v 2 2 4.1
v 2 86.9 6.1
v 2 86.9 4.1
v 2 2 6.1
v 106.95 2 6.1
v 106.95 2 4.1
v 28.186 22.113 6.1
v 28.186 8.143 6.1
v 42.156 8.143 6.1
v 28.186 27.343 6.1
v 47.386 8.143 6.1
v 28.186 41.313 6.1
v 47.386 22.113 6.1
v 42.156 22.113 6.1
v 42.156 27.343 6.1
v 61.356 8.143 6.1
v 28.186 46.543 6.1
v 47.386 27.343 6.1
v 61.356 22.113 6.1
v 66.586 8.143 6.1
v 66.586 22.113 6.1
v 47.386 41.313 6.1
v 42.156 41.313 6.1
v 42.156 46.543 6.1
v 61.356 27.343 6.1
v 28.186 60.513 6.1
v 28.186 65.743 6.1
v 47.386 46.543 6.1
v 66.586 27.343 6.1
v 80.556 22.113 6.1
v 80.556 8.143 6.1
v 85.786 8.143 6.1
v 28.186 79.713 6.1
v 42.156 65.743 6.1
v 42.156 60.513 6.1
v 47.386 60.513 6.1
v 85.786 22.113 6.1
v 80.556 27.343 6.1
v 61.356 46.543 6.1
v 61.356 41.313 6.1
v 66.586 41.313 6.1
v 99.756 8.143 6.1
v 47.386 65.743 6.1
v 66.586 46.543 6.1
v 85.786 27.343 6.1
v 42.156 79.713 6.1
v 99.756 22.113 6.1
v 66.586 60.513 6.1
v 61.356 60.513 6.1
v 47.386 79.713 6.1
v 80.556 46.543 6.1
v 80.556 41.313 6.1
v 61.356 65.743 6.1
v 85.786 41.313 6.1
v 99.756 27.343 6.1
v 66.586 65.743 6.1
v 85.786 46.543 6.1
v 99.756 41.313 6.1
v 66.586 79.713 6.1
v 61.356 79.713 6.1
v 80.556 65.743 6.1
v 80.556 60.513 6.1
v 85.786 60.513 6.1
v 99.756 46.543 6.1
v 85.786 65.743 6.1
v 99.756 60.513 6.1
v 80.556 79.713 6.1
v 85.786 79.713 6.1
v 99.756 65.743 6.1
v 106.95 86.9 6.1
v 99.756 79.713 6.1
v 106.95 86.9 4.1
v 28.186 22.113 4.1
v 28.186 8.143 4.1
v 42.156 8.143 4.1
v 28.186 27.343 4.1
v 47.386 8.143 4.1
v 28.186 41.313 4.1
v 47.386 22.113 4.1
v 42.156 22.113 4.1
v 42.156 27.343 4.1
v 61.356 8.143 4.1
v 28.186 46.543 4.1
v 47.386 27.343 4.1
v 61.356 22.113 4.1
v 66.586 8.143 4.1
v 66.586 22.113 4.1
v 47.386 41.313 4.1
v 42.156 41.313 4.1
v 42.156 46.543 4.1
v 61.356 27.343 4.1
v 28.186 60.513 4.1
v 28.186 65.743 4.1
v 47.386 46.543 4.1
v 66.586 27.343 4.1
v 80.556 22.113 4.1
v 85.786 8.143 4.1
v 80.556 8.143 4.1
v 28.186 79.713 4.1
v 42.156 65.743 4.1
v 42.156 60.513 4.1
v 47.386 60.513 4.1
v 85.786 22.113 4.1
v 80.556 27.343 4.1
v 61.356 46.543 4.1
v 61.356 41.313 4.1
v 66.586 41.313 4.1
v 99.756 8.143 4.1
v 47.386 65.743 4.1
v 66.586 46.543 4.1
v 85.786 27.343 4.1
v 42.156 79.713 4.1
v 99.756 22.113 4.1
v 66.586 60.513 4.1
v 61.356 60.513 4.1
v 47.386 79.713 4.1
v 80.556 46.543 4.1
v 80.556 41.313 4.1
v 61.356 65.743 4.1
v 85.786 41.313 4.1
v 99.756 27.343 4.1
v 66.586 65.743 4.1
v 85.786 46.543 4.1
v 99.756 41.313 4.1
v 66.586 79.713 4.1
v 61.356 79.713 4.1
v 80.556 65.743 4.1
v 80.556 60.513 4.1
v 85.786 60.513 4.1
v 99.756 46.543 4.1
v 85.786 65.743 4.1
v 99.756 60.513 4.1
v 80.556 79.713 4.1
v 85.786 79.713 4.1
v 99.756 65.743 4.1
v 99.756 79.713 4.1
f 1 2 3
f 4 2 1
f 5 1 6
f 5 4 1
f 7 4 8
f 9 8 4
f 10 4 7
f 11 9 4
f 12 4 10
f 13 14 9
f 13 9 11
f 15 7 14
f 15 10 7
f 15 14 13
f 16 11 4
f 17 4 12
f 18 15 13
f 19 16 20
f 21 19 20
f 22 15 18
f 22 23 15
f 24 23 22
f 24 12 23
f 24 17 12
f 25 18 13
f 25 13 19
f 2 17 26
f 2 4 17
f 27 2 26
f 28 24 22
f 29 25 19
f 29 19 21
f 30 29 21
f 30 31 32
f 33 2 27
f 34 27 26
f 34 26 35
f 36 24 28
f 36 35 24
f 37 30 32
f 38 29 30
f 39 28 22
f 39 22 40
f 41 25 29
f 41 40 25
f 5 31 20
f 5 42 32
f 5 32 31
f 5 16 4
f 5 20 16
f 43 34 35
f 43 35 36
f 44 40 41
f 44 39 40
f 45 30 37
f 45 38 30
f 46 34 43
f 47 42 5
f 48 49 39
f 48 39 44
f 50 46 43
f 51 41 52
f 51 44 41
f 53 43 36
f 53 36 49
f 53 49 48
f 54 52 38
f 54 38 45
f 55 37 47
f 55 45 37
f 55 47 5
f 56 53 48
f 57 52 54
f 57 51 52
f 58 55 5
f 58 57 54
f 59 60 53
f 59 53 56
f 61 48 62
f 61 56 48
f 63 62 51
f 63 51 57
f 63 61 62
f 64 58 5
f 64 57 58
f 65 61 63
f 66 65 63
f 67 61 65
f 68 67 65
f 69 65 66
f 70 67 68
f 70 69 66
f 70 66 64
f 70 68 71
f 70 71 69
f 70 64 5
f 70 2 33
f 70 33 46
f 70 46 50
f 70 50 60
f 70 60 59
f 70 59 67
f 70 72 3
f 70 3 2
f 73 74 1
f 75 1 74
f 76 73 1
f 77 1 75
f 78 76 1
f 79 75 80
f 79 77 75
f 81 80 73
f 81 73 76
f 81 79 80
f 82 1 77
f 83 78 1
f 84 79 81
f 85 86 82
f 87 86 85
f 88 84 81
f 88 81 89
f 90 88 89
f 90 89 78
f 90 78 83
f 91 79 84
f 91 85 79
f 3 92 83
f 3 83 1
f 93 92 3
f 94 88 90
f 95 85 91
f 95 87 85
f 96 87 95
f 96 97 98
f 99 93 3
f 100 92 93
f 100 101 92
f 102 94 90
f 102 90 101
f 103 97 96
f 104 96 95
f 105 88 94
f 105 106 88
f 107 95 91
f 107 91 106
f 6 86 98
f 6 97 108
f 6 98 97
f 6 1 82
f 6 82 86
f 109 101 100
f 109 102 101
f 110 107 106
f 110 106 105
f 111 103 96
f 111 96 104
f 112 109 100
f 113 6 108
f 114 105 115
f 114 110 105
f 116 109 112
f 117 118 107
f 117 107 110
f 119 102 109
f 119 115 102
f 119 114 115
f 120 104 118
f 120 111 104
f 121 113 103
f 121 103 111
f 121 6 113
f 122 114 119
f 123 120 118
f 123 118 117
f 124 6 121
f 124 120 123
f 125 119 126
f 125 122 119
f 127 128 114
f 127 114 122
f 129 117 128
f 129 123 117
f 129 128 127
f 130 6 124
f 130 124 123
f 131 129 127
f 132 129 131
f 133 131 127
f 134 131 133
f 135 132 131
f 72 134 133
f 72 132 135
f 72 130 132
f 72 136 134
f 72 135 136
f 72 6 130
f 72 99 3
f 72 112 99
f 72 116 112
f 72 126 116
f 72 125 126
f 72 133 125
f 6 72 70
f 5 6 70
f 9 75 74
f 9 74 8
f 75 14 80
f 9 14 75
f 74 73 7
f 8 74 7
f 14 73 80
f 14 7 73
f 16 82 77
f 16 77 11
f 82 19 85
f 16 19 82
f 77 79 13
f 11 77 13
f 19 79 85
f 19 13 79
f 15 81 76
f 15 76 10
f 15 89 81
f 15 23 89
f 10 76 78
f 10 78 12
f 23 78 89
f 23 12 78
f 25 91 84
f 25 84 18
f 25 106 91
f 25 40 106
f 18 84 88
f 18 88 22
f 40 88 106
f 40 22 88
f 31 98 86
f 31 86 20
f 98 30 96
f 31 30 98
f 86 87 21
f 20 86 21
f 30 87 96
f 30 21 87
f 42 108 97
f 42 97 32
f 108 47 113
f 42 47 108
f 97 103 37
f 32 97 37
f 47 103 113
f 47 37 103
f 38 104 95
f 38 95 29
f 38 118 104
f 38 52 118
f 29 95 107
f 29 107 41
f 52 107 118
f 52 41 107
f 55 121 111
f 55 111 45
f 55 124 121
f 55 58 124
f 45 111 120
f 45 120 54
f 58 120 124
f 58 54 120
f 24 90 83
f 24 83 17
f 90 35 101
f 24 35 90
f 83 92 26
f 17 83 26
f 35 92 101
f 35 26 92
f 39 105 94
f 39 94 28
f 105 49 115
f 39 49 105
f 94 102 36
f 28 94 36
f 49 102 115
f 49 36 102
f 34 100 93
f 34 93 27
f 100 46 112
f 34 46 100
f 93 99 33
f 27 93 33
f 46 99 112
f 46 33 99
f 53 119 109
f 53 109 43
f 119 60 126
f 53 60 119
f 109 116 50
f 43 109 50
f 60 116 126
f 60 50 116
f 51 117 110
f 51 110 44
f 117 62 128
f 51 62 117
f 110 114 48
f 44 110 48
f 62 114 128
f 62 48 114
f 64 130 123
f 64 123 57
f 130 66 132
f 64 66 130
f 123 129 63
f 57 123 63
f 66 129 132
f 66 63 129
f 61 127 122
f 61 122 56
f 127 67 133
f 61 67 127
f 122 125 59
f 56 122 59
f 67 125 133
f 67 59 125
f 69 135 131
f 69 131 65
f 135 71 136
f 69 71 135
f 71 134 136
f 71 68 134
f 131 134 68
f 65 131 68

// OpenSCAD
// file: params.scad
// ============================================
// AUTO-GENERATED — do not edit by hand
// Generated by parse_kicad.py
// ============================================

// ----- Board dimensions -----
pcb_len      = 103.95;
pcb_wid      = 83.9;
pcb_thick    = 1.6;

// ----- Case design parameters -----
wall_thick   = 2.0;
bottom_thick = 2.0;
clear_above_pcb = 5.0;
pcb_clearance = 1.0;
pcb_floor_gap = 0.5;

// ----- Plate parameters -----
plate_thick  = 2.0;
gap_above_pcb = 0.5;

// ----- Ledge parameters -----
ledge_height = 2.0;
ledge_thick  = 2.5;

// ----- Key switch parameters -----
key_size     = 13.97;
key_pitch_x  = 19.2;
key_pitch_y  = 19.2;
grid_cols    = 4;
grid_rows    = 4;

// Switch center positions (board-relative, mm)
switch_positions = [
    [33.171, 13.1278],
    [52.371, 13.1278],
    [71.571, 13.1278],
    [90.771, 13.1278],
    [33.171, 32.3278],
    [52.371, 32.3278],
    [71.571, 32.3278],
    [90.771, 32.3278],
    [33.171, 51.5278],
    [52.371, 51.5278],
    [71.571, 51.5278],
    [90.771, 51.5278],
    [33.171, 70.7278],
    [52.371, 70.7278],
    [71.571, 70.7278],
    [90.771, 70.7278],
];

// ----- USB connector -----
usb_x        = 12.97;
usb_y        = 3.46;
usb_edge     = "top";
usb_width    = 9.0;
usb_height   = 4.0;
usb_bottom_clear = 0.8;

// ----- MCU -----
mcu_x        = 12.97;
mcu_y        = 15.46;
mcu_width    = 21.3;
mcu_height   = 26.0;
// MCU bounding box (board-relative): [2.57, 2.71] to [23.87, 28.71]
mcu_bbox_x0  = 2.57;
mcu_bbox_y0  = 2.71;
mcu_bbox_x1  = 23.87;
mcu_bbox_y1  = 28.71;
// main file
// ============================================
// Positioning plate — auto-generated
// ============================================
include <params.scad>

// ----- Derived -----
pcb_len_clearance = pcb_len + pcb_clearance;
pcb_wid_clearance = pcb_wid + pcb_clearance;

offset_x = wall_thick;
offset_y = wall_thick;

// PCB top Z in the case
pcb_top_z = bottom_thick + pcb_thick;

// Bottom of plate
plate_bottom_z = pcb_top_z + gap_above_pcb;

// ----- Model -----
difference() {
    // Solid plate matching PCB footprint
    translate([offset_x, offset_y, plate_bottom_z])
        cube([pcb_len_clearance, pcb_wid_clearance, plate_thick]);

    // Key switch cutouts
    for (p = switch_positions) {
        sx = p[0];
        sy = p[1];
        // center the cutout on the switch position
        cx = offset_x + sx - key_size/2;
        cy = offset_y + sy - key_size/2;
        translate([cx, cy, plate_bottom_z - 0.1])
            cube([key_size, key_size, plate_thick + 0.2]);
    }
}
